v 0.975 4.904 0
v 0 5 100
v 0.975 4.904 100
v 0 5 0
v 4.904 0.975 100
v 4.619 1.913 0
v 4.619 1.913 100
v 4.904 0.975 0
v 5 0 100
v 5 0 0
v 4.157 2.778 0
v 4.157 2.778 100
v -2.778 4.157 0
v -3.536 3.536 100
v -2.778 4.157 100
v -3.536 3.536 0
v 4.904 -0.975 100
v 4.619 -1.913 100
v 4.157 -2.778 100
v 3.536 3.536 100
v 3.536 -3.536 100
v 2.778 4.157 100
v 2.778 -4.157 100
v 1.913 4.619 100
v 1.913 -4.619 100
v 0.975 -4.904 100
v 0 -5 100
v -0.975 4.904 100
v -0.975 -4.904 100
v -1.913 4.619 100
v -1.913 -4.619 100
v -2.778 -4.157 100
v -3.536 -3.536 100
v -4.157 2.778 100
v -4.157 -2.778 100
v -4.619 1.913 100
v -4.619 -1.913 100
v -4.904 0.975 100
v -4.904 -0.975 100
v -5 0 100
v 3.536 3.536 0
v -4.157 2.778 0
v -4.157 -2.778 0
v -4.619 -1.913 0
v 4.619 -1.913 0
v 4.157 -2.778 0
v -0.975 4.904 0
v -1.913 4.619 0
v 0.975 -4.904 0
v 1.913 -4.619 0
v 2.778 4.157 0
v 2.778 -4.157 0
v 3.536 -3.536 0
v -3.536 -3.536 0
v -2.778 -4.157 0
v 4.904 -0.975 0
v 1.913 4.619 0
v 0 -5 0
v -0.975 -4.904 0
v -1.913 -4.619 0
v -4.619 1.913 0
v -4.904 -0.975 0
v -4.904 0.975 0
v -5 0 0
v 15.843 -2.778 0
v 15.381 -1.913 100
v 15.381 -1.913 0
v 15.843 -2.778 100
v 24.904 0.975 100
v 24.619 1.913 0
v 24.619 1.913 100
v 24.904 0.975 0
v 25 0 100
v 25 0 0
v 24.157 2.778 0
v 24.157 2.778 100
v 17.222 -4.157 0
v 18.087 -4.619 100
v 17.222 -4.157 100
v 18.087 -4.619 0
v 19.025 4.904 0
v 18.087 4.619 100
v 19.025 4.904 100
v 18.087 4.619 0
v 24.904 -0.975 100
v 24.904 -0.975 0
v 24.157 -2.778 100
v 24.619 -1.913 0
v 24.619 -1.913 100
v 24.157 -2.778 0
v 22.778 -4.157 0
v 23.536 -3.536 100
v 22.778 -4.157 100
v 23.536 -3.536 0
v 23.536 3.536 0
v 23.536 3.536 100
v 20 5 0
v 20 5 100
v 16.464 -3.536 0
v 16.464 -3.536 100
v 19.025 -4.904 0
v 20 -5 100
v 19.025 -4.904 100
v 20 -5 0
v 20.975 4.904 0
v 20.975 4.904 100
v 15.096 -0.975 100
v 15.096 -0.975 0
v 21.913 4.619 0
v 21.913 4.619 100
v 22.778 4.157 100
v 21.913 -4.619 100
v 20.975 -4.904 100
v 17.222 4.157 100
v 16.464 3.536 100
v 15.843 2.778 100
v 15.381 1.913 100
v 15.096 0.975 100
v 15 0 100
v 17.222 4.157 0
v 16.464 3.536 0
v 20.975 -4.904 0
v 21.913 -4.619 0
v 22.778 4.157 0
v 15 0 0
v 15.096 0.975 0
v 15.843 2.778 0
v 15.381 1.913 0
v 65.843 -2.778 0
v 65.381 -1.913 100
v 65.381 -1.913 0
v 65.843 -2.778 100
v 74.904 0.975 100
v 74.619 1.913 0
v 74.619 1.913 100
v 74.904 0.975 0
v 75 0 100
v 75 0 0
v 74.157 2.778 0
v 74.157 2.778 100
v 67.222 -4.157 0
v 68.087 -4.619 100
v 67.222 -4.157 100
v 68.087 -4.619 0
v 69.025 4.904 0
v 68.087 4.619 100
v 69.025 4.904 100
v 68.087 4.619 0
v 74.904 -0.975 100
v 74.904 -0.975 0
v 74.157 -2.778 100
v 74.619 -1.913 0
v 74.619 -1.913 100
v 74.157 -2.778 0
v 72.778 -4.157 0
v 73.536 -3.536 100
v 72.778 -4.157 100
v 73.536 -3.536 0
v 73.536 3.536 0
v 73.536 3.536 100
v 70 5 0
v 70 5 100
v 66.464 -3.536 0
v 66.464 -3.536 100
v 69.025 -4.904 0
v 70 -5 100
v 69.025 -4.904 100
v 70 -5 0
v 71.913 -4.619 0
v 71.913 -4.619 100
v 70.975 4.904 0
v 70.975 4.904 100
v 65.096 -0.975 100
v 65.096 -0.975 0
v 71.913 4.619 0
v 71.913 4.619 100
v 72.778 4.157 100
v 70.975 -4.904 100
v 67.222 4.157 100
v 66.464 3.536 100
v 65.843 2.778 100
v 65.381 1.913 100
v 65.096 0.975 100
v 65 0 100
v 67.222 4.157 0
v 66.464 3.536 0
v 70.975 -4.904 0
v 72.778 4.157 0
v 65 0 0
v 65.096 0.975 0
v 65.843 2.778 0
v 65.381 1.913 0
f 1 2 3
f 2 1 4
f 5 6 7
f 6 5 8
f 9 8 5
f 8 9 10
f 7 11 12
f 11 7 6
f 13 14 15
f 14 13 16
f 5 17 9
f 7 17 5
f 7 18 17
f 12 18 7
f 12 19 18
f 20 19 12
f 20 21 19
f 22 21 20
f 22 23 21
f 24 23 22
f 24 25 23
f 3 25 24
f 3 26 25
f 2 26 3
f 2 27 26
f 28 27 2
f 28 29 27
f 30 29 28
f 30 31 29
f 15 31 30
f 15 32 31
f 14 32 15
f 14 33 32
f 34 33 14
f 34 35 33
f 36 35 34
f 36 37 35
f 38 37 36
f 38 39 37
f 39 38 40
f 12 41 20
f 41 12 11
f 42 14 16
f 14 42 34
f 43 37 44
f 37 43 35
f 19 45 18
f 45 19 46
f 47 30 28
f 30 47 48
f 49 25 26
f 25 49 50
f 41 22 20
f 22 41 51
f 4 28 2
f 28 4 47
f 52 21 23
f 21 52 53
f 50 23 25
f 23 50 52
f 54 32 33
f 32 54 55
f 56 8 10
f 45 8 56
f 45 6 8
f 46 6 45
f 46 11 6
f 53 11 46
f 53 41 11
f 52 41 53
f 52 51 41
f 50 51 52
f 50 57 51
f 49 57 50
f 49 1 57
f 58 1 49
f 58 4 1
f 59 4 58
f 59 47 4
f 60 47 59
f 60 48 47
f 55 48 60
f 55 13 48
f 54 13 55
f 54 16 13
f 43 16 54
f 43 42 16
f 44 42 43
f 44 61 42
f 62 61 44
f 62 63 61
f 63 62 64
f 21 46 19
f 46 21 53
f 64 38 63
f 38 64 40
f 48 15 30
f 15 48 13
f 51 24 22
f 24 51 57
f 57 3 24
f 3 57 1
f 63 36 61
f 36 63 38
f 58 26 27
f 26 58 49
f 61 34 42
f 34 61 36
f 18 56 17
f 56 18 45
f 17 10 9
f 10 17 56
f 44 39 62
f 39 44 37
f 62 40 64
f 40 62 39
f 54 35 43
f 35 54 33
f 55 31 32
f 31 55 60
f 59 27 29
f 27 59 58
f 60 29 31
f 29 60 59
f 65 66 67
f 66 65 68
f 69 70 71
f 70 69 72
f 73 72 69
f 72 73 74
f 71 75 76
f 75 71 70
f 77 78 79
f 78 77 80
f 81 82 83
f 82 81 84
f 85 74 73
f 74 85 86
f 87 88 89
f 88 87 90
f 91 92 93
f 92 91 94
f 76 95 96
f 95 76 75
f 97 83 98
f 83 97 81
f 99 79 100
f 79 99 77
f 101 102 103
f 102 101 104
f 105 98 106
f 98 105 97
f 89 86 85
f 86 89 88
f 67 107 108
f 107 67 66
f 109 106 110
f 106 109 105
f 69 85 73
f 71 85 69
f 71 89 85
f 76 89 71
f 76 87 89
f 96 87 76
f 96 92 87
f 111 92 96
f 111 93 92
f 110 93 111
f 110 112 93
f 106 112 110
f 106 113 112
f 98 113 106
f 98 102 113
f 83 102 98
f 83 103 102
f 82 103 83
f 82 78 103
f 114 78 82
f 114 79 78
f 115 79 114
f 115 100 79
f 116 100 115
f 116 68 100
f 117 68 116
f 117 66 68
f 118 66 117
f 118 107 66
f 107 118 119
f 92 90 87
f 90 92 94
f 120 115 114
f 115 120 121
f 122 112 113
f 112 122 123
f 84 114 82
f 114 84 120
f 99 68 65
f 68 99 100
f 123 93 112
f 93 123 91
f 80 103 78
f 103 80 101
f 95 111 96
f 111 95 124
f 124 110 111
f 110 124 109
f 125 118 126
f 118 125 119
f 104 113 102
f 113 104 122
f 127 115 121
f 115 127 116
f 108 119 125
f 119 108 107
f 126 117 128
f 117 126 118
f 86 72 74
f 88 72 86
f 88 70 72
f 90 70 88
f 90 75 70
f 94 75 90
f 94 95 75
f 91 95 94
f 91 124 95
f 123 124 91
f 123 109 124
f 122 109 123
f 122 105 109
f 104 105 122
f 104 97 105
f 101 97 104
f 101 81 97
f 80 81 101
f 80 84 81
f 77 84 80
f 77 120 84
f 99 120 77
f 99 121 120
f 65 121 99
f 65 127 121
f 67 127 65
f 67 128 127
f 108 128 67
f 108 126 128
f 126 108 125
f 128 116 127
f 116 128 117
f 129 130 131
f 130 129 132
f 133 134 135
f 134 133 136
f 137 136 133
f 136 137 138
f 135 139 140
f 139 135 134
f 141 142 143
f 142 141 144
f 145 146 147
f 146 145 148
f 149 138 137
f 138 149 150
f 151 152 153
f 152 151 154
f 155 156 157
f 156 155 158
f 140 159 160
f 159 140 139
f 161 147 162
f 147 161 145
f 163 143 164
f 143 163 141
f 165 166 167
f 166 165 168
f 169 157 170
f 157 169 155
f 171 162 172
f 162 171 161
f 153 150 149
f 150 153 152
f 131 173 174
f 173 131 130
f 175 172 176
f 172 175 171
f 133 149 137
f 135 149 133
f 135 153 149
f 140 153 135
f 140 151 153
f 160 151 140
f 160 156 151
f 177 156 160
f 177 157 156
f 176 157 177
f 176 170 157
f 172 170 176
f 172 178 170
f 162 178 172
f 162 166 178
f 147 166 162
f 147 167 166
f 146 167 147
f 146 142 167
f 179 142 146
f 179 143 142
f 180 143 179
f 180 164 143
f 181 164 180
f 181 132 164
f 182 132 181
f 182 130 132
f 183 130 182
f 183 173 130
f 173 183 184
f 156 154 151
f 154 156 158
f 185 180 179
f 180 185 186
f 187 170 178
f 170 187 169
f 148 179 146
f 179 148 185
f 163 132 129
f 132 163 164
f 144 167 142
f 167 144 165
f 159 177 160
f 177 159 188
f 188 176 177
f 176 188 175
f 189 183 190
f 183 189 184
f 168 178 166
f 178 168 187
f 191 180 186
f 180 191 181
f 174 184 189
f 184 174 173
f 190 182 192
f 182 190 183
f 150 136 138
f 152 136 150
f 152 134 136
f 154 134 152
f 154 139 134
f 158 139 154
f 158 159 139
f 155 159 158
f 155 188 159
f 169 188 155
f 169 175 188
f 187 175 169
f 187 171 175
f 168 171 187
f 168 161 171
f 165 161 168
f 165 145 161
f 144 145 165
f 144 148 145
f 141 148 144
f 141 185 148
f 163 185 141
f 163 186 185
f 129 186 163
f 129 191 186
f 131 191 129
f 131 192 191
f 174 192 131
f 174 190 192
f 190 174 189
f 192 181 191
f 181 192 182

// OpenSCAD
$fn = 32;

cylinder(h = 100, r = 5);
translate([20, 0, 0]) cylinder(h = 100, r = 5);
translate([70, 0, 0]) cylinder(h = 100, r = 5);
